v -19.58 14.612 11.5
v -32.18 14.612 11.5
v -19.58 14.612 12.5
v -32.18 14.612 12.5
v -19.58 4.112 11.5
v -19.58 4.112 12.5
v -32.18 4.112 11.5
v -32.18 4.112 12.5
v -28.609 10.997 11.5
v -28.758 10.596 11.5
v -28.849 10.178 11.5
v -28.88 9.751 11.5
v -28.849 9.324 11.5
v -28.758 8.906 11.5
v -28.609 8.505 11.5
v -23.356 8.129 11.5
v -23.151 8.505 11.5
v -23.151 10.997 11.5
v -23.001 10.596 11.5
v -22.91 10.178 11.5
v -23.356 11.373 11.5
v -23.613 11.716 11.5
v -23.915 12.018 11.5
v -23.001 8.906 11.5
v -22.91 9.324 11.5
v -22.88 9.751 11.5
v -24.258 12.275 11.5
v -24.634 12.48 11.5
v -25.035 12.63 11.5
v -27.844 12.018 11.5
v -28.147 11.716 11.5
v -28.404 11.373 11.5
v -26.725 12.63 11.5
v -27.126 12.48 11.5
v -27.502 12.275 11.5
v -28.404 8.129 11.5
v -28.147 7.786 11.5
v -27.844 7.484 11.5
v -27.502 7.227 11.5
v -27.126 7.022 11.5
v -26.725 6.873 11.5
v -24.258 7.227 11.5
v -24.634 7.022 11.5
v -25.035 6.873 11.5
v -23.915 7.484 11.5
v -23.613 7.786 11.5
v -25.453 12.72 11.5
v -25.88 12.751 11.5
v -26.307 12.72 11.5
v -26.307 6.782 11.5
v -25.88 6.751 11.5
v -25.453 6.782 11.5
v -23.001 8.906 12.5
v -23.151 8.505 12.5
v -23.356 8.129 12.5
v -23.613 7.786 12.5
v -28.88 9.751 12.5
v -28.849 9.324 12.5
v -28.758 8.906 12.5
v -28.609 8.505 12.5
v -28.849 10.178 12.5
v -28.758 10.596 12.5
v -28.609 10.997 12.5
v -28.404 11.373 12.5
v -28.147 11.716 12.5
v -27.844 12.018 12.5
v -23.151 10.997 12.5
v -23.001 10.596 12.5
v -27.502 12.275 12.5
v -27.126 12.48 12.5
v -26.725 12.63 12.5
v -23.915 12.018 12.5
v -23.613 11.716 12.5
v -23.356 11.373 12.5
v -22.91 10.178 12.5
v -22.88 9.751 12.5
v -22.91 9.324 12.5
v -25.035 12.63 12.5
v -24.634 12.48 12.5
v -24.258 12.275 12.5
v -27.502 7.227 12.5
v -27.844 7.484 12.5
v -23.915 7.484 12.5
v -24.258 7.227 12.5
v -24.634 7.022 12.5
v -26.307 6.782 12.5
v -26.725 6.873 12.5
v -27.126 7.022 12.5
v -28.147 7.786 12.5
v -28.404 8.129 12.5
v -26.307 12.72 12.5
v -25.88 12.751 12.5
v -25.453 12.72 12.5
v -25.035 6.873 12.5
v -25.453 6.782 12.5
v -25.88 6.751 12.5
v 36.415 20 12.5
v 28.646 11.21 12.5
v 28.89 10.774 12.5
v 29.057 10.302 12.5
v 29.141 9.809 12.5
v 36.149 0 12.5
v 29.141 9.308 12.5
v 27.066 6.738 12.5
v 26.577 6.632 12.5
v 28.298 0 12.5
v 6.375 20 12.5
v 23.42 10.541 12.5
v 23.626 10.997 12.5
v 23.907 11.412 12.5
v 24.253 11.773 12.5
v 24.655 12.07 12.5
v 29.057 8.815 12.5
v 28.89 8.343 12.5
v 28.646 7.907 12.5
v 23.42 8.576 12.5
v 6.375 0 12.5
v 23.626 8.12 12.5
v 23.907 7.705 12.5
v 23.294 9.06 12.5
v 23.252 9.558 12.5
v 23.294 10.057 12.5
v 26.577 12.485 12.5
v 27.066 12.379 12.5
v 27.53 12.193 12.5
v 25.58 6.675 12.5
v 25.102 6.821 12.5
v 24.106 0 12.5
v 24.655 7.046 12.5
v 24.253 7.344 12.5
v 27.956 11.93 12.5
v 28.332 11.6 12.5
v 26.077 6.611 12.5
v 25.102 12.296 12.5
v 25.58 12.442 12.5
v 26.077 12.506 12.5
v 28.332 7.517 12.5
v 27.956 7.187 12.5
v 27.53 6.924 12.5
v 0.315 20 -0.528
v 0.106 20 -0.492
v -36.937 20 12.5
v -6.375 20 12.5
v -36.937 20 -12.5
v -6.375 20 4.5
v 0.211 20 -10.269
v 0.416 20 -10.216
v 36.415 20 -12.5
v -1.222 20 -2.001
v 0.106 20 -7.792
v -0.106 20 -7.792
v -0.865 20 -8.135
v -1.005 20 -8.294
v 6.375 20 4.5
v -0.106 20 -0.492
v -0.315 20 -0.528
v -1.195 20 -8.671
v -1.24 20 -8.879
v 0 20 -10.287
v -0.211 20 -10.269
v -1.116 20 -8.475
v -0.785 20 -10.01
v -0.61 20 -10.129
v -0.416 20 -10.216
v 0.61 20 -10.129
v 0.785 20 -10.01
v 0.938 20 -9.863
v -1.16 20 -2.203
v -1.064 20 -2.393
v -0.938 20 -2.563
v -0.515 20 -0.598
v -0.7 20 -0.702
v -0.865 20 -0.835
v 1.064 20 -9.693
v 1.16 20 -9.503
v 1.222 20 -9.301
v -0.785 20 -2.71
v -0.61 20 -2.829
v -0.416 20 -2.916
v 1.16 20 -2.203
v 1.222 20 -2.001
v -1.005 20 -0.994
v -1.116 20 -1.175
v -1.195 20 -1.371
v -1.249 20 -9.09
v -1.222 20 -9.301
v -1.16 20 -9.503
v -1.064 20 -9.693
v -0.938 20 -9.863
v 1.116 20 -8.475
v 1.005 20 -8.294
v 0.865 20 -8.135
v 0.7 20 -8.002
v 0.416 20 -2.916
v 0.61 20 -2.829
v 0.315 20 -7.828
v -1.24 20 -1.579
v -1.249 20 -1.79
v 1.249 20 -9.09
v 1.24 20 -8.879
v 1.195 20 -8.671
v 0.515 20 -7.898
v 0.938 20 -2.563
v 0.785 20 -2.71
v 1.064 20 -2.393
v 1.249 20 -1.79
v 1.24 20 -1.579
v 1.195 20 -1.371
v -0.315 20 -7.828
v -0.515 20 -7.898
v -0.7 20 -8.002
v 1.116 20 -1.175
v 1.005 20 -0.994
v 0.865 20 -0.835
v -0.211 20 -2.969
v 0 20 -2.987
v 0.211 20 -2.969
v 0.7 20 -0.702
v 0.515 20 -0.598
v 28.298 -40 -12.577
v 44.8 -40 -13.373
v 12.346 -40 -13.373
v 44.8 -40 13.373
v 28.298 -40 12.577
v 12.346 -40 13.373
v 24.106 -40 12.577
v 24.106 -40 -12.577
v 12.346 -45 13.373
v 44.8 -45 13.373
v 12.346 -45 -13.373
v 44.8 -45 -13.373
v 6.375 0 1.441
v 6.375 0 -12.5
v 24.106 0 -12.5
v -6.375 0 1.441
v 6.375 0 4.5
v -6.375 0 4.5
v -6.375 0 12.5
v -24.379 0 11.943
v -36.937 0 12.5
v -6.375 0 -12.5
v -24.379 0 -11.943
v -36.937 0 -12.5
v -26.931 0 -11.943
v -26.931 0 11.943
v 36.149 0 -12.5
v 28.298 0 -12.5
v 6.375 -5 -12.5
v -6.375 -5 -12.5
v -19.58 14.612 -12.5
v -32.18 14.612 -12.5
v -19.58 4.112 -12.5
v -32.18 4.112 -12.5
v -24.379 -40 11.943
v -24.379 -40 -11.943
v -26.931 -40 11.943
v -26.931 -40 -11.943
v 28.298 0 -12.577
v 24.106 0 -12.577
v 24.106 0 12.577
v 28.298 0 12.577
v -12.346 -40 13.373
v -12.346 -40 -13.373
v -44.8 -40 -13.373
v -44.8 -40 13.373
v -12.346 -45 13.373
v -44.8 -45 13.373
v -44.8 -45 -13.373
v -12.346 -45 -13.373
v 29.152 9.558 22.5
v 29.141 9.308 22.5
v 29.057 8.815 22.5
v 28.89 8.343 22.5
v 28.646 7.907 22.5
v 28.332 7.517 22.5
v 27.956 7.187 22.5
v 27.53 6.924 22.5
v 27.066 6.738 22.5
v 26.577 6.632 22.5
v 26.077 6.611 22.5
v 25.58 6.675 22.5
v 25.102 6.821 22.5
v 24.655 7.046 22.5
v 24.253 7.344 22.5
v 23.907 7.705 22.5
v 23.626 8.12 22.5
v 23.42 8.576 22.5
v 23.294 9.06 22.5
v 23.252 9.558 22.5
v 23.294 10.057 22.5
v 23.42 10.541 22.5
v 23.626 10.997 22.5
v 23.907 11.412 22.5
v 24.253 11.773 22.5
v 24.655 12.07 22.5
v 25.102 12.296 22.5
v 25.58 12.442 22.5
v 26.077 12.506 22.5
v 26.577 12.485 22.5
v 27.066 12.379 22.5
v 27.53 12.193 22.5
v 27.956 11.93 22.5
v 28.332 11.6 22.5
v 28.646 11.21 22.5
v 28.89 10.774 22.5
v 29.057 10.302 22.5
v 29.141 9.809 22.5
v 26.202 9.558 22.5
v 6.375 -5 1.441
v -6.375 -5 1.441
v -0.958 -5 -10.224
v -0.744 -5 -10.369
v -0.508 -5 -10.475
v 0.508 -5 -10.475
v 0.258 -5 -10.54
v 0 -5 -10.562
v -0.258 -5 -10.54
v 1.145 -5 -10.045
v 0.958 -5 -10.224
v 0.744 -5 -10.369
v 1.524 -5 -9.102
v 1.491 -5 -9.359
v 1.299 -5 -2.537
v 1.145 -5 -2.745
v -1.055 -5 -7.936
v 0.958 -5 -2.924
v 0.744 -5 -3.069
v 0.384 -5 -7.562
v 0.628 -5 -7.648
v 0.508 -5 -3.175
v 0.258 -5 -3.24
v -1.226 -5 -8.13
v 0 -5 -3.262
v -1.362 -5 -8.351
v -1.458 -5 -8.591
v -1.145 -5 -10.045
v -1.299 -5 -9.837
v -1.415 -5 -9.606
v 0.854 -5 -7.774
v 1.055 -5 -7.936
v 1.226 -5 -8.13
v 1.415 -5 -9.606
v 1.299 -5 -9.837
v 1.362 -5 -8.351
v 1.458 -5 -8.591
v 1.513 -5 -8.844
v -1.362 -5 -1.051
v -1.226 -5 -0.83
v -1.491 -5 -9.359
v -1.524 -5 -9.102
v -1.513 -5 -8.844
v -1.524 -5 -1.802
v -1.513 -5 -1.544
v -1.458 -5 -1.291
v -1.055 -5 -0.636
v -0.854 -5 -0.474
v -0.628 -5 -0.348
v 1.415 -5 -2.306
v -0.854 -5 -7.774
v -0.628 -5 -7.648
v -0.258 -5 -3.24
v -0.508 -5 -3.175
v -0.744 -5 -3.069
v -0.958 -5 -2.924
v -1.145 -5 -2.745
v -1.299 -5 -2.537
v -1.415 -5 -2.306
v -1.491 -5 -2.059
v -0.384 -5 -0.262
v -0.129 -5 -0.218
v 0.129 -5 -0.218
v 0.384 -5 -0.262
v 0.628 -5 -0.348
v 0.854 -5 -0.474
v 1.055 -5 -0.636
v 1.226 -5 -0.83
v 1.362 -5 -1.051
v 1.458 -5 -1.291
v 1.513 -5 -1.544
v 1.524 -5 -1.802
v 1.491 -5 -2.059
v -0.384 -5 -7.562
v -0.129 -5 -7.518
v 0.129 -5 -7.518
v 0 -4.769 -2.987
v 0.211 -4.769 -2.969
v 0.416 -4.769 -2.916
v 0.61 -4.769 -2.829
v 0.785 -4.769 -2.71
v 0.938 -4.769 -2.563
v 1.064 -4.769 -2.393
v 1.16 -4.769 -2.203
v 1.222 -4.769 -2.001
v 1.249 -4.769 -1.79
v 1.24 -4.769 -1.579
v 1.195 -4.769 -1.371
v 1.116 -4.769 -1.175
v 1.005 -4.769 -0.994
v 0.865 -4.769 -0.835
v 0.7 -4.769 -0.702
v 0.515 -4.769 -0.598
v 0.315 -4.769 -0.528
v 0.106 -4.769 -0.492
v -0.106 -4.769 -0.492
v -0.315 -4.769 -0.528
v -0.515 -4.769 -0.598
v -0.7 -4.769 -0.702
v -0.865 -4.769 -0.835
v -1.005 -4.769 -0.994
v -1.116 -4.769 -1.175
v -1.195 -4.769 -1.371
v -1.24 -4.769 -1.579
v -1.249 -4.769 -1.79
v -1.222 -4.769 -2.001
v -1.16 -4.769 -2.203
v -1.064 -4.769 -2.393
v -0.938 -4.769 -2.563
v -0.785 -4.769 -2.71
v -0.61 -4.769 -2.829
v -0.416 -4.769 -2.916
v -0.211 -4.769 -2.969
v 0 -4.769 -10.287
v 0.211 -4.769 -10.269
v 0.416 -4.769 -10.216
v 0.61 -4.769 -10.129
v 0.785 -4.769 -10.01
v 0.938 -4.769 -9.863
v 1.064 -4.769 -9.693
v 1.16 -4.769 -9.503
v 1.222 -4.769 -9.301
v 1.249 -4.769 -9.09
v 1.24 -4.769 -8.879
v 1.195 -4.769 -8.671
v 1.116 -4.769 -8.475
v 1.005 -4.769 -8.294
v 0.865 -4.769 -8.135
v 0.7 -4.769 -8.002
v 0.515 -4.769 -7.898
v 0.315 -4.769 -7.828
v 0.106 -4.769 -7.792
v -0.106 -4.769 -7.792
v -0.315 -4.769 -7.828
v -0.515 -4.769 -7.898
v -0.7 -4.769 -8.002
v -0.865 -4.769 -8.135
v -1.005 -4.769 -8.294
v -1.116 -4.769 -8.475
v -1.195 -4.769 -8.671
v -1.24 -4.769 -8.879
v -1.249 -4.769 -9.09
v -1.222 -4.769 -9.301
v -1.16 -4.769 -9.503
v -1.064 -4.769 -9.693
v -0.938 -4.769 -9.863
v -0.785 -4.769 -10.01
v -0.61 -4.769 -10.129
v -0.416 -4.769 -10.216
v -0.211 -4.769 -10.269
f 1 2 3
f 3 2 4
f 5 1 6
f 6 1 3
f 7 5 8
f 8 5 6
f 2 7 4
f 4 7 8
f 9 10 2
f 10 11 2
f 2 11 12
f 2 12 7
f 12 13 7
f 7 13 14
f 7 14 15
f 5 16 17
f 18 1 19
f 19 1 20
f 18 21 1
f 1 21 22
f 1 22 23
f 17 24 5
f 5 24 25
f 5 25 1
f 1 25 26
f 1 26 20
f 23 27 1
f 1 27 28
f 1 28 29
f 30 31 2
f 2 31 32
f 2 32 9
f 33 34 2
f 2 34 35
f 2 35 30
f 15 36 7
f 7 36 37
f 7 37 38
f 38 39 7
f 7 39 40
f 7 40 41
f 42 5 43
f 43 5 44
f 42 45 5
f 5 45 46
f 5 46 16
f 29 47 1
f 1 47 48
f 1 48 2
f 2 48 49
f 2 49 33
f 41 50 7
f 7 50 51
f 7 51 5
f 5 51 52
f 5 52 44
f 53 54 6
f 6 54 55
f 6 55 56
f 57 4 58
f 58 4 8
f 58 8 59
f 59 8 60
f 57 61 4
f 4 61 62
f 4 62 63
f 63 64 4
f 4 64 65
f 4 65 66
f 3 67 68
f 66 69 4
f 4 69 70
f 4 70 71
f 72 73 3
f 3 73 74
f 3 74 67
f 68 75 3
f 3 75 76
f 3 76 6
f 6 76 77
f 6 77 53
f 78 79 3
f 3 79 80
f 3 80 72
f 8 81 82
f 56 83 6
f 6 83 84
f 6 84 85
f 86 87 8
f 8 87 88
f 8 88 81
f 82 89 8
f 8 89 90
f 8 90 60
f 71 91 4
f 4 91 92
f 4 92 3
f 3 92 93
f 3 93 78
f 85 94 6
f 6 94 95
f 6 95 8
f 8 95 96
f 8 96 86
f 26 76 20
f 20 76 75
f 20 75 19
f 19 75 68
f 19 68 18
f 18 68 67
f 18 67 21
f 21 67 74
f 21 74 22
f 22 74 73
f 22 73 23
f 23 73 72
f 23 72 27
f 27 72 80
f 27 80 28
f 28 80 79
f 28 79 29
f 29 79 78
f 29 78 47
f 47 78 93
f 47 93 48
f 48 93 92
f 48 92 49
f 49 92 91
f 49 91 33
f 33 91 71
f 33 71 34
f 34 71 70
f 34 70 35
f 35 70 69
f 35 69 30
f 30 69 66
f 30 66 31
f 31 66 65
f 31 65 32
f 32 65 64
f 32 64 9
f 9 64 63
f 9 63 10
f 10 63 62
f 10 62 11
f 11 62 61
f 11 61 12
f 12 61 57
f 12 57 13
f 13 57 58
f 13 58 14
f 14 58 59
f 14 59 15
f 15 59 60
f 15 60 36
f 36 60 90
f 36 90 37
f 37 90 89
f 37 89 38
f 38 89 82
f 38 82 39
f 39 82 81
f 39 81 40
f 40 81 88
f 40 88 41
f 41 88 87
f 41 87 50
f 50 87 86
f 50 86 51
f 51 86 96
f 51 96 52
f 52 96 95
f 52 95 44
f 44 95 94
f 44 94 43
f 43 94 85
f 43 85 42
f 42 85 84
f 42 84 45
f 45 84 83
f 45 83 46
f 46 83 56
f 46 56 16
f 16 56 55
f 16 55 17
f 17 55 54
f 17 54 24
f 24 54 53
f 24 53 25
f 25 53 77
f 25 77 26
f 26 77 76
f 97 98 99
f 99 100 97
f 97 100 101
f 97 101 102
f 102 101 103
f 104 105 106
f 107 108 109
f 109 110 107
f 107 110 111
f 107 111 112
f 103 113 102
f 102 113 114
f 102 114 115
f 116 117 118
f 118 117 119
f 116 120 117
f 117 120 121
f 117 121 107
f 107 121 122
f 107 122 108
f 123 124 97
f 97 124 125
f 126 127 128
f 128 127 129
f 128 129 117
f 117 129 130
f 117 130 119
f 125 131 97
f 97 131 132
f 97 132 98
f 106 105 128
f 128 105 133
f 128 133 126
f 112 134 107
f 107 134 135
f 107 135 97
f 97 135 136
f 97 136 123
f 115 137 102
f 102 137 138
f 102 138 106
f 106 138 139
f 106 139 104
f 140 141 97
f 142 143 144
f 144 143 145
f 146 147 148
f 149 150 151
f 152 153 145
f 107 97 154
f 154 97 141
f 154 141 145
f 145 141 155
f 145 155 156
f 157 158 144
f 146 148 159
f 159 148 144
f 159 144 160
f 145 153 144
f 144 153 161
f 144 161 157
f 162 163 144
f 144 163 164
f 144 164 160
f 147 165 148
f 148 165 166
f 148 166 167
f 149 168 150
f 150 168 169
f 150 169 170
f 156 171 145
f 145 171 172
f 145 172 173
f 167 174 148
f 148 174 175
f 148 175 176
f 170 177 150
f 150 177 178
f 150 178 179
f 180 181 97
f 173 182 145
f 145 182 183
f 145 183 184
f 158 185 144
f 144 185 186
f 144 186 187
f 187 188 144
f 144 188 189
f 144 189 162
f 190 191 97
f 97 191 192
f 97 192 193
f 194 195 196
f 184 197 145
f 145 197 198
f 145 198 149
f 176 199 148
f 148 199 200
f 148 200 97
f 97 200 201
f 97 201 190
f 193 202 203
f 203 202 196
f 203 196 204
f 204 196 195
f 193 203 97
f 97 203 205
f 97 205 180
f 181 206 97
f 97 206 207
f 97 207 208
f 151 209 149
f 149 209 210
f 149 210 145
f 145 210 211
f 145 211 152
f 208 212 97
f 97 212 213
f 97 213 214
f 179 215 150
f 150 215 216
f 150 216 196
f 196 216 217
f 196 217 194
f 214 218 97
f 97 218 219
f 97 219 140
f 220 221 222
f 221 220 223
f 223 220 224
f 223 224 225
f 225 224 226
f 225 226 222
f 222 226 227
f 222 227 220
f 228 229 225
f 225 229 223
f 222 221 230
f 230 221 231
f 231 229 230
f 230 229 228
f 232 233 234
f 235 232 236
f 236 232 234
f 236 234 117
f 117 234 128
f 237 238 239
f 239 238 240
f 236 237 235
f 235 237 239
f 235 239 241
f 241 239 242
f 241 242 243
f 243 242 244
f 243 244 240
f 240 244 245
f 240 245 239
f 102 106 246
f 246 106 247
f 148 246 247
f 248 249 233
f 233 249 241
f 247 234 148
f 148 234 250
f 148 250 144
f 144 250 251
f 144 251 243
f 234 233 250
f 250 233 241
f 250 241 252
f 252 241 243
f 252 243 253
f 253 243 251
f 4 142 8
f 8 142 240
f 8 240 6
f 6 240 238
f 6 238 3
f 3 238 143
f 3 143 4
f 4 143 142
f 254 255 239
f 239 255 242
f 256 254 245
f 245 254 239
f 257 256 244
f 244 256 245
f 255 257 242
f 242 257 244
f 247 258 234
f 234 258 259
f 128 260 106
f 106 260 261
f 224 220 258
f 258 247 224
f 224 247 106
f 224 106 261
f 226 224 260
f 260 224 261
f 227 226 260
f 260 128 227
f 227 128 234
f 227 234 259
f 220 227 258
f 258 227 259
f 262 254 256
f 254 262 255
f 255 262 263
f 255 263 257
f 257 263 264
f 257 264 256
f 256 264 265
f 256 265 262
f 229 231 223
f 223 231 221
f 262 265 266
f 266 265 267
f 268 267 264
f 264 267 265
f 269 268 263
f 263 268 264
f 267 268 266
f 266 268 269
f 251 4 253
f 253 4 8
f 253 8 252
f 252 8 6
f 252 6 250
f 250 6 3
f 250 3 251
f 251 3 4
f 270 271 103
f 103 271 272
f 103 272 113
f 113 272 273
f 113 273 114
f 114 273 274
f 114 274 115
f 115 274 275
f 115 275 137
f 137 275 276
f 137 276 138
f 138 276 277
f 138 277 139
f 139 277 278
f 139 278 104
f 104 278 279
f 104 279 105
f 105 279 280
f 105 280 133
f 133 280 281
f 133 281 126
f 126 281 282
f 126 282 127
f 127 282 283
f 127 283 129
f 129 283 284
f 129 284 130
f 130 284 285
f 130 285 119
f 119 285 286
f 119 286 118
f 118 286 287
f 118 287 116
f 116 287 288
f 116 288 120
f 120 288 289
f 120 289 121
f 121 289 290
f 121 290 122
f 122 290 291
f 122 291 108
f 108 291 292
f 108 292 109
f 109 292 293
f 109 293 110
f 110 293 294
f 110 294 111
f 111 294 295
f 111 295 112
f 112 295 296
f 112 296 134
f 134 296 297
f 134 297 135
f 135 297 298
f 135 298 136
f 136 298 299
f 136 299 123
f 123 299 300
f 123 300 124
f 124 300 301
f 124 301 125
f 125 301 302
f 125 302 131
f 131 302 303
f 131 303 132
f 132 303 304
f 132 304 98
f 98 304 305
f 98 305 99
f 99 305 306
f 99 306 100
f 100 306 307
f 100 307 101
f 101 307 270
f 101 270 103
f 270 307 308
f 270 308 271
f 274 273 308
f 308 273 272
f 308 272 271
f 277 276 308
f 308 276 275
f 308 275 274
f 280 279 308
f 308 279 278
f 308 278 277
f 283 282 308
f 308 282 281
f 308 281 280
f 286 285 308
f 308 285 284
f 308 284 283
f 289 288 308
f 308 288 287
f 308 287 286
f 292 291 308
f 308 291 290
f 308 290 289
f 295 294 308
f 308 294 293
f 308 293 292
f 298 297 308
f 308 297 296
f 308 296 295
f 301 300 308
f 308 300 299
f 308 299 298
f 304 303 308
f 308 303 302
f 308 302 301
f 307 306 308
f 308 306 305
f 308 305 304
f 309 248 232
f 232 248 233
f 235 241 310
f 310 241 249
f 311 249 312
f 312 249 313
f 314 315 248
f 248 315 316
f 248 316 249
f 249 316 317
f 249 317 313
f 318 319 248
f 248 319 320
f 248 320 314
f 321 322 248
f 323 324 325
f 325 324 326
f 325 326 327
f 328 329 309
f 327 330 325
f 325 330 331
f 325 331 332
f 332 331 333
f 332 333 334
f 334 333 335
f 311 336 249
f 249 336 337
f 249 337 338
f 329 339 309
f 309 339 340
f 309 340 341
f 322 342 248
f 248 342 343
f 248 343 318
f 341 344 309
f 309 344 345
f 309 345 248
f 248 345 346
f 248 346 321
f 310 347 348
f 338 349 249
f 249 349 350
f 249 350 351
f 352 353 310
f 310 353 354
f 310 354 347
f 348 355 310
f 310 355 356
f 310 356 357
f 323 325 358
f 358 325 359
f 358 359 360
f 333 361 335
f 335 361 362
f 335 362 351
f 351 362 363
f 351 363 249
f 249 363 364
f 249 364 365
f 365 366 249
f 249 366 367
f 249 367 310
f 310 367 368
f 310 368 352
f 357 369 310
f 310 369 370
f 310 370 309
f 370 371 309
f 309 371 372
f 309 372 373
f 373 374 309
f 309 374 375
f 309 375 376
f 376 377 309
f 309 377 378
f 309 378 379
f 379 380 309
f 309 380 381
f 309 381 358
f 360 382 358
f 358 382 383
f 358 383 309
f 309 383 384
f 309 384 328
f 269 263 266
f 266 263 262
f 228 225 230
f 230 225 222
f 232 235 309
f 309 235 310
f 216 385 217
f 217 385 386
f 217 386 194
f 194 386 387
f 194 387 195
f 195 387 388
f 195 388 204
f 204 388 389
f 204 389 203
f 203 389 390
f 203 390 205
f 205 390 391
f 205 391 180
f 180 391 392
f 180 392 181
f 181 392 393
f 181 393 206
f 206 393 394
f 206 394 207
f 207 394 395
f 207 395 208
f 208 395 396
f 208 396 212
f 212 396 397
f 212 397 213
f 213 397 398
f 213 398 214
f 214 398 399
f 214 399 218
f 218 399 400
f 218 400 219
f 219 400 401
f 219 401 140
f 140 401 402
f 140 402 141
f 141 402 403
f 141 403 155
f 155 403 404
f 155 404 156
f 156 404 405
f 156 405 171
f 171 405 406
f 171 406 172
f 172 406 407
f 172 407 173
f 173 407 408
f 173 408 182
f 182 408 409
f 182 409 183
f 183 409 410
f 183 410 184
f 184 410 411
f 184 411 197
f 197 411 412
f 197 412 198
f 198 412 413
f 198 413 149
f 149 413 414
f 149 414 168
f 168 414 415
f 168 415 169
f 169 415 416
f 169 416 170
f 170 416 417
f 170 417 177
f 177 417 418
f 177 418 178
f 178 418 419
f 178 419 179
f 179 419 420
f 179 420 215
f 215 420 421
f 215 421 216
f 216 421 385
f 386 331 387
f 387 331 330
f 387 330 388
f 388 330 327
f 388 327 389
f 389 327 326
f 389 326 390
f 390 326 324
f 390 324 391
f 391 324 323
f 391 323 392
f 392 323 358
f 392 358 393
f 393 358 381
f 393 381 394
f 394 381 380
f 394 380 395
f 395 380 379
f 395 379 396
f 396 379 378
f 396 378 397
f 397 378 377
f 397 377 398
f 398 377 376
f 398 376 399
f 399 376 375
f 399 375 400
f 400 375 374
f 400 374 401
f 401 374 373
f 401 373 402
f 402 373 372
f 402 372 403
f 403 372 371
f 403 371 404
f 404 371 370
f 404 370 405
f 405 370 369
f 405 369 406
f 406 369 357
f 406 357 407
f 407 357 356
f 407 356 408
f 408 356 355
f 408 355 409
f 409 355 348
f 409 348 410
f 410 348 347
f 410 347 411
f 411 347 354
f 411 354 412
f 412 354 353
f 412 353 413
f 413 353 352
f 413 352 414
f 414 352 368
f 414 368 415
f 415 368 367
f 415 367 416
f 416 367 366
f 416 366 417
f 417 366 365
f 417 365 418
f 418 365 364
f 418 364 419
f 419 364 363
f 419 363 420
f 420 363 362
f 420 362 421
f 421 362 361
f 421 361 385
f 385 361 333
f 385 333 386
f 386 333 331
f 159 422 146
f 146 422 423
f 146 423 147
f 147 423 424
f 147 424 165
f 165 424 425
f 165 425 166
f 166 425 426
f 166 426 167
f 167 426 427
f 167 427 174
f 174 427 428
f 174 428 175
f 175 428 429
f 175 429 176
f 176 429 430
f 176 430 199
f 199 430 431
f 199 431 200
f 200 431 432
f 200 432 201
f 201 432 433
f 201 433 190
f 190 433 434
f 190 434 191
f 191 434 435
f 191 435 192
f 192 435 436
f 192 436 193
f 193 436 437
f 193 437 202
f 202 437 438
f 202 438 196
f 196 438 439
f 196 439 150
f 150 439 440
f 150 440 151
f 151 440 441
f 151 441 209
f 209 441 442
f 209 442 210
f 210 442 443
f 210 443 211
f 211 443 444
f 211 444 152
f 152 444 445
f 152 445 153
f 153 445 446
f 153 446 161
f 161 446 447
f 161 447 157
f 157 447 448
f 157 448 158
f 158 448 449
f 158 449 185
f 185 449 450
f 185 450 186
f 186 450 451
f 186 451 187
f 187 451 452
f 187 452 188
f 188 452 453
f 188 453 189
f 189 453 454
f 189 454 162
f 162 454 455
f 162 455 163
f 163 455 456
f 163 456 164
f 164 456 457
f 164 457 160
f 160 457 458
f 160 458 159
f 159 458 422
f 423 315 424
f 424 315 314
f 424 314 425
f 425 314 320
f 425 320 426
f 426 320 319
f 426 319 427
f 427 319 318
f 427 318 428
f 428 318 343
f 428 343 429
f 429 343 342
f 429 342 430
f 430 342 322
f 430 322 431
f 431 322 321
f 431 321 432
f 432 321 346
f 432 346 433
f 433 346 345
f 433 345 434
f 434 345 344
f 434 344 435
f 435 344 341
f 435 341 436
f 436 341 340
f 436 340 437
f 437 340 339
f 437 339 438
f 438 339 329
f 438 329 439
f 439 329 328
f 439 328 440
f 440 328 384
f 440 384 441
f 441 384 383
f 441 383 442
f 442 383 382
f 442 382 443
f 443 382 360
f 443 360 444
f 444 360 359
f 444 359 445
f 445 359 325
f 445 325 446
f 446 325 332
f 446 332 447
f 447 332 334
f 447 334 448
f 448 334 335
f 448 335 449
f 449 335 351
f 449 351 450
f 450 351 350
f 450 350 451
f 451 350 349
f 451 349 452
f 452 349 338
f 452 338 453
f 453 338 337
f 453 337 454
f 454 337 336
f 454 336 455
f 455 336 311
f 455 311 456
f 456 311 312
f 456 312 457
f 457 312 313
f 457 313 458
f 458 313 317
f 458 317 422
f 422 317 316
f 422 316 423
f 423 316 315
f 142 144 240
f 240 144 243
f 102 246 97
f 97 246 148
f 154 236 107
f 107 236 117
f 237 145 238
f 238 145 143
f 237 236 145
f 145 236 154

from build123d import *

# Parameters (mm, degrees)
SKETCH_1_W               = 88
SKETCH_1_H               = 25
EXTRUDE_2_DEPTH          = 20
SKETCH_4_W               = 2.551829688
SKETCH_4_H               = 23.885610852
EXTRUDE_5_DEPTH          = 40
SKETCH_5_W               = 4.19229163
SKETCH_5_H               = 25.15374978
EXTRUDE_6_DEPTH          = 40
SKETCH_6_W               = 89.600130436
SKETCH_6_H               = 26.746307592
EXTRUDE_7_DEPTH          = 5
SKETCH_7_W               = 12.6
SKETCH_7_H               = 10.5
CUT_EXTRUDE_1_DEPTH      = 69.567236571
SKETCH_8_W               = 12.6
SKETCH_8_H               = 10.5
EXTRUDE_8_DEPTH          = 1
SKETCH_10_R              = 2.95
EXTRUDE_9_DEPTH          = 10
SKETCH_2_W               = 12.749073286
SKETCH_2_H               = 25
EXTRUDE_10_DEPTH         = 5
SKETCH_14_W              = 24.692625752
SKETCH_14_H              = 26.746307592
CUT_EXTRUDE_3_DEPTH      = 10
SKETCH_15_W              = 12.749073286
SKETCH_15_H              = 11.05942892
CUT_EXTRUDE_4_DEPTH      = 5
SKETCH_16_R              = 3
CUT_EXTRUDE_5_DEPTH      = 5
SKETCH_29_W              = 7.06316408
SKETCH_29_H              = 20
CUT_EXTRUDE_6_DEPTH      = 69.567236571
CUT_EXTRUDE_7_DEPTH      = 69.567236571
CUT_EXTRUDE_8_DEPTH      = 69.567236571
CUT_EXTRUDE_8_DEPTH_BACK = 8
SKETCH_31_W              = 12.749073286
SKETCH_31_H              = 20


with BuildPart() as part:
    # 草圖1 → 填料-伸長2 (new body)
    with BuildSketch(Plane(origin=(0, 0, 0), x_dir=(1, 0, 0), z_dir=(0, 1, 0))):
        Rectangle(SKETCH_1_W, SKETCH_1_H)
    extrude(amount=EXTRUDE_2_DEPTH)

    # 草圖4 → 填料-伸長5 (add)
    with BuildSketch(Plane.XZ):
        with Locations((-25.655002041, 0)):
            Rectangle(SKETCH_4_W, SKETCH_4_H)
    extrude(amount=EXTRUDE_5_DEPTH)

    # 草圖5 → 填料-伸長6 (add)
    with BuildSketch(Plane.XZ):
        with Locations((26.201822688, 0)):
            Rectangle(SKETCH_5_W, SKETCH_5_H)
    extrude(amount=EXTRUDE_6_DEPTH)

    # 草圖6 → 填料-伸長7 (add)
    with BuildSketch(Plane.XZ.offset(40)):
        Rectangle(SKETCH_6_W, SKETCH_6_H)
    extrude(amount=EXTRUDE_7_DEPTH)

    # 草圖7 → 除料-伸長1 (cut, through all)
    with BuildSketch(Plane(origin=(0, 0, -12.5), x_dir=(-1, 0, 0), z_dir=(0, 0, -1))):
        with Locations((25.879907351, 9.361912681)):
            Rectangle(SKETCH_7_W, SKETCH_7_H)
    extrude(amount=-CUT_EXTRUDE_1_DEPTH, mode=Mode.SUBTRACT)

    # 草圖10 → 填料-伸長9 (add)
    with BuildSketch(Plane.XY.offset(12.5)):
        with Locations(Location((26.201822688, 9.558441428, 0), (0, 0, 180))):
            Circle(SKETCH_10_R)
    extrude(amount=EXTRUDE_9_DEPTH)

    # 草圖2 → 填料-伸長10 (add)
    with BuildSketch(Plane.XZ):
        Rectangle(SKETCH_2_W, SKETCH_2_H)
    extrude(amount=EXTRUDE_10_DEPTH)

    # 草圖14 → 除料-伸長3 (cut)
    with BuildSketch(Plane.XZ.offset(45)):
        Rectangle(SKETCH_14_W, SKETCH_14_H)
    extrude(amount=-CUT_EXTRUDE_3_DEPTH, mode=Mode.SUBTRACT)

    # 草圖15 → 除料-伸長4 (cut)
    with BuildSketch(Plane.XZ.offset(5)):
        with Locations((0, 6.97028554)):
            Rectangle(SKETCH_15_W, SKETCH_15_H)
    extrude(amount=-CUT_EXTRUDE_4_DEPTH, mode=Mode.SUBTRACT)

    # 草圖24 → M3 螺紋孔3 (revolve, cut)
    with BuildSketch(Plane(origin=(0, -5, -1.73731437), x_dir=(0, 0, -1), z_dir=(1, 0, 0))):
        Polygon((0, 0), (0, 25), (1.25, 25), (1.25, 0.230752399), (1.525, 0), align=None)
    revolve(axis=Axis((0, -11.35, -1.73731437), (0, 1, 0)), mode=Mode.SUBTRACT)

    # 草圖27 → M3 螺紋孔4 (revolve, cut)
    with BuildSketch(Plane(origin=(0, -5, -9.03731437), x_dir=(0, 0, -1), z_dir=(1, 0, 0))):
        Polygon((0, 0), (0, 25), (1.25, 25), (1.25, 0.230752399), (1.525, 0), align=None)
    revolve(axis=Axis((0, -11.35, -9.03731437), (0, 1, 0)), mode=Mode.SUBTRACT)

    # 草圖29 → 除料-伸長6 (cut, through all)
    with BuildSketch(Plane.XY.offset(12.5)):
        with Locations((-40.46841796, 10)):
            Rectangle(SKETCH_29_W, SKETCH_29_H)
    extrude(amount=-CUT_EXTRUDE_6_DEPTH, mode=Mode.SUBTRACT)

    # 草圖30 → 除料-伸長7 (cut, through all)
    with BuildSketch(Plane.XY.offset(12.5)):
        Polygon((36.414937256, 20), (36.148984252, 0), (44, 0), (44, 20), align=None)
    extrude(amount=-CUT_EXTRUDE_7_DEPTH, mode=Mode.SUBTRACT)

    # 草圖31 → 除料-伸長8 (cut, two sides: drawn at the far end of the back side and taken through both)
    with BuildSketch(Plane.XY.offset(12.5).offset(-CUT_EXTRUDE_8_DEPTH_BACK)):
        with Locations((0, 10)):
            Rectangle(SKETCH_31_W, SKETCH_31_H)
    extrude(amount=CUT_EXTRUDE_8_DEPTH + CUT_EXTRUDE_8_DEPTH_BACK, mode=Mode.SUBTRACT)


with BuildPart() as body_2:
    # 草圖8 → 填料-伸長8 (new body)
    with BuildSketch(Plane.XY.offset(12.5)):
        with Locations((-25.879907351, 9.361912681)):
            Rectangle(SKETCH_8_W, SKETCH_8_H)
    extrude(amount=-EXTRUDE_8_DEPTH)

    # 草圖16 → 除料-伸長5 (cut)
    with BuildSketch(Plane.XY.offset(12.5)):
        with Locations((-25.879907351, 9.751032881)):
            Circle(SKETCH_16_R)
    extrude(amount=-CUT_EXTRUDE_5_DEPTH, mode=Mode.SUBTRACT)


solid = Compound([part.part, body_2.part])
